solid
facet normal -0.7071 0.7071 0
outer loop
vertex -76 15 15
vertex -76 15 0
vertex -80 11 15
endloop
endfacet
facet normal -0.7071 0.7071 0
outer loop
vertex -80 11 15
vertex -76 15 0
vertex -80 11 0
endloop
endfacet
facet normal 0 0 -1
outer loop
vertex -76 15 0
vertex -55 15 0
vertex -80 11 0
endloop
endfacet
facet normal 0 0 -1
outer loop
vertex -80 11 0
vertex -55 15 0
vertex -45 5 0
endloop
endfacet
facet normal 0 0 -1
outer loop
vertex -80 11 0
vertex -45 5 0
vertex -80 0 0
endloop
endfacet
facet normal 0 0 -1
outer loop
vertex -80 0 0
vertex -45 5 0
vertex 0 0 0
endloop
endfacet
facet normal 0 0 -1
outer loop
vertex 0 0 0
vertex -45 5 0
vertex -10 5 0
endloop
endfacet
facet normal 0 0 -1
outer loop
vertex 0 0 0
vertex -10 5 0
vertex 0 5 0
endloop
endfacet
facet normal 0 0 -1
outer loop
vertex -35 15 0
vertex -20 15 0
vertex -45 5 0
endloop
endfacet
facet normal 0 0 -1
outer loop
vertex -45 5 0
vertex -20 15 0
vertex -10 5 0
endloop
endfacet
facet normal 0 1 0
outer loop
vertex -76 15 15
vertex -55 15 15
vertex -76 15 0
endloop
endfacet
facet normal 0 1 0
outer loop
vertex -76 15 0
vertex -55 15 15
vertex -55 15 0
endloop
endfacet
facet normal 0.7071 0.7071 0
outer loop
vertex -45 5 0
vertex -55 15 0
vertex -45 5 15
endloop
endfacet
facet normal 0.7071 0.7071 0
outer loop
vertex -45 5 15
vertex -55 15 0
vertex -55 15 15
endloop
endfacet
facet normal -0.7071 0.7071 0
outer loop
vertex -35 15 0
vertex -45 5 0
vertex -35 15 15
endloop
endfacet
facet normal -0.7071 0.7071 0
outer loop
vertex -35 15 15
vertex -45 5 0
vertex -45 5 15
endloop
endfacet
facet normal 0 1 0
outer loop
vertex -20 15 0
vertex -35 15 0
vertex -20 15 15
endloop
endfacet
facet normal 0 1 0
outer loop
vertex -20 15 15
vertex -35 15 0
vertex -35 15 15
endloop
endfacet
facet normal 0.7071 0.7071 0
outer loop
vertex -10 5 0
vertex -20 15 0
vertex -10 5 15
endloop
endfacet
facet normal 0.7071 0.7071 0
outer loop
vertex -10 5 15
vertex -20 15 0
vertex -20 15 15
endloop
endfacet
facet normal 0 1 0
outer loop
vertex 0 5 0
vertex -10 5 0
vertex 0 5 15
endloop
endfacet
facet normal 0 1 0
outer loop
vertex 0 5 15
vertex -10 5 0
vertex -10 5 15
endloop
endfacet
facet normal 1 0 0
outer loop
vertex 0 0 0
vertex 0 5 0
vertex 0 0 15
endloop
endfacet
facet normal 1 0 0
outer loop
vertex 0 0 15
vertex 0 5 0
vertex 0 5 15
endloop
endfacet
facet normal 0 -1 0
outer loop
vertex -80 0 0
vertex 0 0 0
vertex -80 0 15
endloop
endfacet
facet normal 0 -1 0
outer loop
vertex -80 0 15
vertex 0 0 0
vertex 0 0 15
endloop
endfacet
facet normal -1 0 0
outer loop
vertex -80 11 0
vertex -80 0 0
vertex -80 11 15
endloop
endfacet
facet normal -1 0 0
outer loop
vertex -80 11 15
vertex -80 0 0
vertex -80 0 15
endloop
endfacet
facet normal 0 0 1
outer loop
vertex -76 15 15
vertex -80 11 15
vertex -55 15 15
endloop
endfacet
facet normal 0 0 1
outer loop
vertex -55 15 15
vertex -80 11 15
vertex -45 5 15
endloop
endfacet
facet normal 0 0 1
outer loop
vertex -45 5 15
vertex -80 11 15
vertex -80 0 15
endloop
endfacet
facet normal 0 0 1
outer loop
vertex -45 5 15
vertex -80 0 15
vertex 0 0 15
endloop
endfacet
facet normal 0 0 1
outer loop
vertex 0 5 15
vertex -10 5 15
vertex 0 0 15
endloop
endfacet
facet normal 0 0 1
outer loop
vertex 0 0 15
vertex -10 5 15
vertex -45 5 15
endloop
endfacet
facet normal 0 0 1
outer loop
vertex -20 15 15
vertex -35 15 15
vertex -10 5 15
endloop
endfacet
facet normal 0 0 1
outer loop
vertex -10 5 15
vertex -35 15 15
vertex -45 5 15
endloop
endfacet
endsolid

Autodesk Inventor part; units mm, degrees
ref_plane "YZ Plane" through (0, 0, 0) normal (1, 0, 0) x (0, 1, 0)
ref_plane "XZ Plane" through (0, 0, 0) normal (0, 1, 0) x (-1, 0, 0)
ref_plane "XY Plane" through (0, 0, 0) normal (0, 0, 1) x (1, 0, 0)
sketch "スケッチ3" plane through (0, 0, 0) normal (0, 0, 1) x (1, 0, 0)
  line L0 (0, 0) -> (0, 5)
  line L1 (0, 5) -> (-10, 5)
  line L2 (-10, 5) -> (-20, 15)
  line L3 (-20, 15) -> (-35, 15)
  line L4 (-35, 15) -> (-45, 5)
  line L5 (-45, 5) -> (-55, 15)
  line L6 (-80, 0) -> (0, 0)
  line L7 (0, 5) -> (0, 0)
  line L8 (-55, 15) -> (-80, 15)
  line L9 (-80, 15) -> (-80, 0)
  dimension "d0" = 10
  dimension "d2" = 15
  dimension "d4" = 5
  dimension "d6" = 135
  dimension "d9" = 25
  dimension "d10" = 15
extrude "押し出し1" add sketch "スケッチ3" along normal blind 15
chamfer "面取り1" distance 4 angle 45 1 edges at (-80, 15, 7.5)
sketch "スケッチ4" plane through (0, 0, 15) normal (0, 0, 1) x (1, 0, 0)
  line L0 (-80, 11) -> (-76, 15) projected
  line L1 (-80, 11) -> (-80, 0) projected
  line L2 (-80, 0) -> (0, 0) projected
  line L3 (0, 0) -> (0, 5) projected
  line L4 (0, 5) -> (-10, 5) projected
  line L5 (-10, 5) -> (-20, 15) projected
  line L6 (-20, 15) -> (-35, 15) projected
  line L7 (-35, 15) -> (-45, 5) projected
  line L8 (-45, 5) -> (-55, 15) projected
  line L9 (-55, 15) -> (-76, 15) projected
  line L10 (-93.9194, 12.5) -> (6.2827, 12.5)
  line L11 (-45, 5) -> (-55, 15) projected
  line L12 (-35, 15) -> (-45, 5) projected
  line L13 (-10, 5) -> (-20, 15) projected
  line L14 (-65.5, 45.5) -> (-65.5, -30.5) construction
  line L15 (-55, 15) -> (-76, 15) construction
  line L16 (-55, 15) -> (-55, -16.6145) construction
  line L17 (-76, 15) -> (-76, -16.6145) construction
  point P0 (-78.5, 12.5)
  point P1 (-52.5, 12.5)
  point P2 (-37.5, 12.5)
  point P3 (-17.5, 12.5)
  dimension "d14" = 12.5
  dimension "d15" = 17.5
  dimension "d16" = 37.5
  dimension "d17" = 52.5
  dimension "d18" = 78.5
  dimension "d19" = 65.5
properties part number "finger2"
